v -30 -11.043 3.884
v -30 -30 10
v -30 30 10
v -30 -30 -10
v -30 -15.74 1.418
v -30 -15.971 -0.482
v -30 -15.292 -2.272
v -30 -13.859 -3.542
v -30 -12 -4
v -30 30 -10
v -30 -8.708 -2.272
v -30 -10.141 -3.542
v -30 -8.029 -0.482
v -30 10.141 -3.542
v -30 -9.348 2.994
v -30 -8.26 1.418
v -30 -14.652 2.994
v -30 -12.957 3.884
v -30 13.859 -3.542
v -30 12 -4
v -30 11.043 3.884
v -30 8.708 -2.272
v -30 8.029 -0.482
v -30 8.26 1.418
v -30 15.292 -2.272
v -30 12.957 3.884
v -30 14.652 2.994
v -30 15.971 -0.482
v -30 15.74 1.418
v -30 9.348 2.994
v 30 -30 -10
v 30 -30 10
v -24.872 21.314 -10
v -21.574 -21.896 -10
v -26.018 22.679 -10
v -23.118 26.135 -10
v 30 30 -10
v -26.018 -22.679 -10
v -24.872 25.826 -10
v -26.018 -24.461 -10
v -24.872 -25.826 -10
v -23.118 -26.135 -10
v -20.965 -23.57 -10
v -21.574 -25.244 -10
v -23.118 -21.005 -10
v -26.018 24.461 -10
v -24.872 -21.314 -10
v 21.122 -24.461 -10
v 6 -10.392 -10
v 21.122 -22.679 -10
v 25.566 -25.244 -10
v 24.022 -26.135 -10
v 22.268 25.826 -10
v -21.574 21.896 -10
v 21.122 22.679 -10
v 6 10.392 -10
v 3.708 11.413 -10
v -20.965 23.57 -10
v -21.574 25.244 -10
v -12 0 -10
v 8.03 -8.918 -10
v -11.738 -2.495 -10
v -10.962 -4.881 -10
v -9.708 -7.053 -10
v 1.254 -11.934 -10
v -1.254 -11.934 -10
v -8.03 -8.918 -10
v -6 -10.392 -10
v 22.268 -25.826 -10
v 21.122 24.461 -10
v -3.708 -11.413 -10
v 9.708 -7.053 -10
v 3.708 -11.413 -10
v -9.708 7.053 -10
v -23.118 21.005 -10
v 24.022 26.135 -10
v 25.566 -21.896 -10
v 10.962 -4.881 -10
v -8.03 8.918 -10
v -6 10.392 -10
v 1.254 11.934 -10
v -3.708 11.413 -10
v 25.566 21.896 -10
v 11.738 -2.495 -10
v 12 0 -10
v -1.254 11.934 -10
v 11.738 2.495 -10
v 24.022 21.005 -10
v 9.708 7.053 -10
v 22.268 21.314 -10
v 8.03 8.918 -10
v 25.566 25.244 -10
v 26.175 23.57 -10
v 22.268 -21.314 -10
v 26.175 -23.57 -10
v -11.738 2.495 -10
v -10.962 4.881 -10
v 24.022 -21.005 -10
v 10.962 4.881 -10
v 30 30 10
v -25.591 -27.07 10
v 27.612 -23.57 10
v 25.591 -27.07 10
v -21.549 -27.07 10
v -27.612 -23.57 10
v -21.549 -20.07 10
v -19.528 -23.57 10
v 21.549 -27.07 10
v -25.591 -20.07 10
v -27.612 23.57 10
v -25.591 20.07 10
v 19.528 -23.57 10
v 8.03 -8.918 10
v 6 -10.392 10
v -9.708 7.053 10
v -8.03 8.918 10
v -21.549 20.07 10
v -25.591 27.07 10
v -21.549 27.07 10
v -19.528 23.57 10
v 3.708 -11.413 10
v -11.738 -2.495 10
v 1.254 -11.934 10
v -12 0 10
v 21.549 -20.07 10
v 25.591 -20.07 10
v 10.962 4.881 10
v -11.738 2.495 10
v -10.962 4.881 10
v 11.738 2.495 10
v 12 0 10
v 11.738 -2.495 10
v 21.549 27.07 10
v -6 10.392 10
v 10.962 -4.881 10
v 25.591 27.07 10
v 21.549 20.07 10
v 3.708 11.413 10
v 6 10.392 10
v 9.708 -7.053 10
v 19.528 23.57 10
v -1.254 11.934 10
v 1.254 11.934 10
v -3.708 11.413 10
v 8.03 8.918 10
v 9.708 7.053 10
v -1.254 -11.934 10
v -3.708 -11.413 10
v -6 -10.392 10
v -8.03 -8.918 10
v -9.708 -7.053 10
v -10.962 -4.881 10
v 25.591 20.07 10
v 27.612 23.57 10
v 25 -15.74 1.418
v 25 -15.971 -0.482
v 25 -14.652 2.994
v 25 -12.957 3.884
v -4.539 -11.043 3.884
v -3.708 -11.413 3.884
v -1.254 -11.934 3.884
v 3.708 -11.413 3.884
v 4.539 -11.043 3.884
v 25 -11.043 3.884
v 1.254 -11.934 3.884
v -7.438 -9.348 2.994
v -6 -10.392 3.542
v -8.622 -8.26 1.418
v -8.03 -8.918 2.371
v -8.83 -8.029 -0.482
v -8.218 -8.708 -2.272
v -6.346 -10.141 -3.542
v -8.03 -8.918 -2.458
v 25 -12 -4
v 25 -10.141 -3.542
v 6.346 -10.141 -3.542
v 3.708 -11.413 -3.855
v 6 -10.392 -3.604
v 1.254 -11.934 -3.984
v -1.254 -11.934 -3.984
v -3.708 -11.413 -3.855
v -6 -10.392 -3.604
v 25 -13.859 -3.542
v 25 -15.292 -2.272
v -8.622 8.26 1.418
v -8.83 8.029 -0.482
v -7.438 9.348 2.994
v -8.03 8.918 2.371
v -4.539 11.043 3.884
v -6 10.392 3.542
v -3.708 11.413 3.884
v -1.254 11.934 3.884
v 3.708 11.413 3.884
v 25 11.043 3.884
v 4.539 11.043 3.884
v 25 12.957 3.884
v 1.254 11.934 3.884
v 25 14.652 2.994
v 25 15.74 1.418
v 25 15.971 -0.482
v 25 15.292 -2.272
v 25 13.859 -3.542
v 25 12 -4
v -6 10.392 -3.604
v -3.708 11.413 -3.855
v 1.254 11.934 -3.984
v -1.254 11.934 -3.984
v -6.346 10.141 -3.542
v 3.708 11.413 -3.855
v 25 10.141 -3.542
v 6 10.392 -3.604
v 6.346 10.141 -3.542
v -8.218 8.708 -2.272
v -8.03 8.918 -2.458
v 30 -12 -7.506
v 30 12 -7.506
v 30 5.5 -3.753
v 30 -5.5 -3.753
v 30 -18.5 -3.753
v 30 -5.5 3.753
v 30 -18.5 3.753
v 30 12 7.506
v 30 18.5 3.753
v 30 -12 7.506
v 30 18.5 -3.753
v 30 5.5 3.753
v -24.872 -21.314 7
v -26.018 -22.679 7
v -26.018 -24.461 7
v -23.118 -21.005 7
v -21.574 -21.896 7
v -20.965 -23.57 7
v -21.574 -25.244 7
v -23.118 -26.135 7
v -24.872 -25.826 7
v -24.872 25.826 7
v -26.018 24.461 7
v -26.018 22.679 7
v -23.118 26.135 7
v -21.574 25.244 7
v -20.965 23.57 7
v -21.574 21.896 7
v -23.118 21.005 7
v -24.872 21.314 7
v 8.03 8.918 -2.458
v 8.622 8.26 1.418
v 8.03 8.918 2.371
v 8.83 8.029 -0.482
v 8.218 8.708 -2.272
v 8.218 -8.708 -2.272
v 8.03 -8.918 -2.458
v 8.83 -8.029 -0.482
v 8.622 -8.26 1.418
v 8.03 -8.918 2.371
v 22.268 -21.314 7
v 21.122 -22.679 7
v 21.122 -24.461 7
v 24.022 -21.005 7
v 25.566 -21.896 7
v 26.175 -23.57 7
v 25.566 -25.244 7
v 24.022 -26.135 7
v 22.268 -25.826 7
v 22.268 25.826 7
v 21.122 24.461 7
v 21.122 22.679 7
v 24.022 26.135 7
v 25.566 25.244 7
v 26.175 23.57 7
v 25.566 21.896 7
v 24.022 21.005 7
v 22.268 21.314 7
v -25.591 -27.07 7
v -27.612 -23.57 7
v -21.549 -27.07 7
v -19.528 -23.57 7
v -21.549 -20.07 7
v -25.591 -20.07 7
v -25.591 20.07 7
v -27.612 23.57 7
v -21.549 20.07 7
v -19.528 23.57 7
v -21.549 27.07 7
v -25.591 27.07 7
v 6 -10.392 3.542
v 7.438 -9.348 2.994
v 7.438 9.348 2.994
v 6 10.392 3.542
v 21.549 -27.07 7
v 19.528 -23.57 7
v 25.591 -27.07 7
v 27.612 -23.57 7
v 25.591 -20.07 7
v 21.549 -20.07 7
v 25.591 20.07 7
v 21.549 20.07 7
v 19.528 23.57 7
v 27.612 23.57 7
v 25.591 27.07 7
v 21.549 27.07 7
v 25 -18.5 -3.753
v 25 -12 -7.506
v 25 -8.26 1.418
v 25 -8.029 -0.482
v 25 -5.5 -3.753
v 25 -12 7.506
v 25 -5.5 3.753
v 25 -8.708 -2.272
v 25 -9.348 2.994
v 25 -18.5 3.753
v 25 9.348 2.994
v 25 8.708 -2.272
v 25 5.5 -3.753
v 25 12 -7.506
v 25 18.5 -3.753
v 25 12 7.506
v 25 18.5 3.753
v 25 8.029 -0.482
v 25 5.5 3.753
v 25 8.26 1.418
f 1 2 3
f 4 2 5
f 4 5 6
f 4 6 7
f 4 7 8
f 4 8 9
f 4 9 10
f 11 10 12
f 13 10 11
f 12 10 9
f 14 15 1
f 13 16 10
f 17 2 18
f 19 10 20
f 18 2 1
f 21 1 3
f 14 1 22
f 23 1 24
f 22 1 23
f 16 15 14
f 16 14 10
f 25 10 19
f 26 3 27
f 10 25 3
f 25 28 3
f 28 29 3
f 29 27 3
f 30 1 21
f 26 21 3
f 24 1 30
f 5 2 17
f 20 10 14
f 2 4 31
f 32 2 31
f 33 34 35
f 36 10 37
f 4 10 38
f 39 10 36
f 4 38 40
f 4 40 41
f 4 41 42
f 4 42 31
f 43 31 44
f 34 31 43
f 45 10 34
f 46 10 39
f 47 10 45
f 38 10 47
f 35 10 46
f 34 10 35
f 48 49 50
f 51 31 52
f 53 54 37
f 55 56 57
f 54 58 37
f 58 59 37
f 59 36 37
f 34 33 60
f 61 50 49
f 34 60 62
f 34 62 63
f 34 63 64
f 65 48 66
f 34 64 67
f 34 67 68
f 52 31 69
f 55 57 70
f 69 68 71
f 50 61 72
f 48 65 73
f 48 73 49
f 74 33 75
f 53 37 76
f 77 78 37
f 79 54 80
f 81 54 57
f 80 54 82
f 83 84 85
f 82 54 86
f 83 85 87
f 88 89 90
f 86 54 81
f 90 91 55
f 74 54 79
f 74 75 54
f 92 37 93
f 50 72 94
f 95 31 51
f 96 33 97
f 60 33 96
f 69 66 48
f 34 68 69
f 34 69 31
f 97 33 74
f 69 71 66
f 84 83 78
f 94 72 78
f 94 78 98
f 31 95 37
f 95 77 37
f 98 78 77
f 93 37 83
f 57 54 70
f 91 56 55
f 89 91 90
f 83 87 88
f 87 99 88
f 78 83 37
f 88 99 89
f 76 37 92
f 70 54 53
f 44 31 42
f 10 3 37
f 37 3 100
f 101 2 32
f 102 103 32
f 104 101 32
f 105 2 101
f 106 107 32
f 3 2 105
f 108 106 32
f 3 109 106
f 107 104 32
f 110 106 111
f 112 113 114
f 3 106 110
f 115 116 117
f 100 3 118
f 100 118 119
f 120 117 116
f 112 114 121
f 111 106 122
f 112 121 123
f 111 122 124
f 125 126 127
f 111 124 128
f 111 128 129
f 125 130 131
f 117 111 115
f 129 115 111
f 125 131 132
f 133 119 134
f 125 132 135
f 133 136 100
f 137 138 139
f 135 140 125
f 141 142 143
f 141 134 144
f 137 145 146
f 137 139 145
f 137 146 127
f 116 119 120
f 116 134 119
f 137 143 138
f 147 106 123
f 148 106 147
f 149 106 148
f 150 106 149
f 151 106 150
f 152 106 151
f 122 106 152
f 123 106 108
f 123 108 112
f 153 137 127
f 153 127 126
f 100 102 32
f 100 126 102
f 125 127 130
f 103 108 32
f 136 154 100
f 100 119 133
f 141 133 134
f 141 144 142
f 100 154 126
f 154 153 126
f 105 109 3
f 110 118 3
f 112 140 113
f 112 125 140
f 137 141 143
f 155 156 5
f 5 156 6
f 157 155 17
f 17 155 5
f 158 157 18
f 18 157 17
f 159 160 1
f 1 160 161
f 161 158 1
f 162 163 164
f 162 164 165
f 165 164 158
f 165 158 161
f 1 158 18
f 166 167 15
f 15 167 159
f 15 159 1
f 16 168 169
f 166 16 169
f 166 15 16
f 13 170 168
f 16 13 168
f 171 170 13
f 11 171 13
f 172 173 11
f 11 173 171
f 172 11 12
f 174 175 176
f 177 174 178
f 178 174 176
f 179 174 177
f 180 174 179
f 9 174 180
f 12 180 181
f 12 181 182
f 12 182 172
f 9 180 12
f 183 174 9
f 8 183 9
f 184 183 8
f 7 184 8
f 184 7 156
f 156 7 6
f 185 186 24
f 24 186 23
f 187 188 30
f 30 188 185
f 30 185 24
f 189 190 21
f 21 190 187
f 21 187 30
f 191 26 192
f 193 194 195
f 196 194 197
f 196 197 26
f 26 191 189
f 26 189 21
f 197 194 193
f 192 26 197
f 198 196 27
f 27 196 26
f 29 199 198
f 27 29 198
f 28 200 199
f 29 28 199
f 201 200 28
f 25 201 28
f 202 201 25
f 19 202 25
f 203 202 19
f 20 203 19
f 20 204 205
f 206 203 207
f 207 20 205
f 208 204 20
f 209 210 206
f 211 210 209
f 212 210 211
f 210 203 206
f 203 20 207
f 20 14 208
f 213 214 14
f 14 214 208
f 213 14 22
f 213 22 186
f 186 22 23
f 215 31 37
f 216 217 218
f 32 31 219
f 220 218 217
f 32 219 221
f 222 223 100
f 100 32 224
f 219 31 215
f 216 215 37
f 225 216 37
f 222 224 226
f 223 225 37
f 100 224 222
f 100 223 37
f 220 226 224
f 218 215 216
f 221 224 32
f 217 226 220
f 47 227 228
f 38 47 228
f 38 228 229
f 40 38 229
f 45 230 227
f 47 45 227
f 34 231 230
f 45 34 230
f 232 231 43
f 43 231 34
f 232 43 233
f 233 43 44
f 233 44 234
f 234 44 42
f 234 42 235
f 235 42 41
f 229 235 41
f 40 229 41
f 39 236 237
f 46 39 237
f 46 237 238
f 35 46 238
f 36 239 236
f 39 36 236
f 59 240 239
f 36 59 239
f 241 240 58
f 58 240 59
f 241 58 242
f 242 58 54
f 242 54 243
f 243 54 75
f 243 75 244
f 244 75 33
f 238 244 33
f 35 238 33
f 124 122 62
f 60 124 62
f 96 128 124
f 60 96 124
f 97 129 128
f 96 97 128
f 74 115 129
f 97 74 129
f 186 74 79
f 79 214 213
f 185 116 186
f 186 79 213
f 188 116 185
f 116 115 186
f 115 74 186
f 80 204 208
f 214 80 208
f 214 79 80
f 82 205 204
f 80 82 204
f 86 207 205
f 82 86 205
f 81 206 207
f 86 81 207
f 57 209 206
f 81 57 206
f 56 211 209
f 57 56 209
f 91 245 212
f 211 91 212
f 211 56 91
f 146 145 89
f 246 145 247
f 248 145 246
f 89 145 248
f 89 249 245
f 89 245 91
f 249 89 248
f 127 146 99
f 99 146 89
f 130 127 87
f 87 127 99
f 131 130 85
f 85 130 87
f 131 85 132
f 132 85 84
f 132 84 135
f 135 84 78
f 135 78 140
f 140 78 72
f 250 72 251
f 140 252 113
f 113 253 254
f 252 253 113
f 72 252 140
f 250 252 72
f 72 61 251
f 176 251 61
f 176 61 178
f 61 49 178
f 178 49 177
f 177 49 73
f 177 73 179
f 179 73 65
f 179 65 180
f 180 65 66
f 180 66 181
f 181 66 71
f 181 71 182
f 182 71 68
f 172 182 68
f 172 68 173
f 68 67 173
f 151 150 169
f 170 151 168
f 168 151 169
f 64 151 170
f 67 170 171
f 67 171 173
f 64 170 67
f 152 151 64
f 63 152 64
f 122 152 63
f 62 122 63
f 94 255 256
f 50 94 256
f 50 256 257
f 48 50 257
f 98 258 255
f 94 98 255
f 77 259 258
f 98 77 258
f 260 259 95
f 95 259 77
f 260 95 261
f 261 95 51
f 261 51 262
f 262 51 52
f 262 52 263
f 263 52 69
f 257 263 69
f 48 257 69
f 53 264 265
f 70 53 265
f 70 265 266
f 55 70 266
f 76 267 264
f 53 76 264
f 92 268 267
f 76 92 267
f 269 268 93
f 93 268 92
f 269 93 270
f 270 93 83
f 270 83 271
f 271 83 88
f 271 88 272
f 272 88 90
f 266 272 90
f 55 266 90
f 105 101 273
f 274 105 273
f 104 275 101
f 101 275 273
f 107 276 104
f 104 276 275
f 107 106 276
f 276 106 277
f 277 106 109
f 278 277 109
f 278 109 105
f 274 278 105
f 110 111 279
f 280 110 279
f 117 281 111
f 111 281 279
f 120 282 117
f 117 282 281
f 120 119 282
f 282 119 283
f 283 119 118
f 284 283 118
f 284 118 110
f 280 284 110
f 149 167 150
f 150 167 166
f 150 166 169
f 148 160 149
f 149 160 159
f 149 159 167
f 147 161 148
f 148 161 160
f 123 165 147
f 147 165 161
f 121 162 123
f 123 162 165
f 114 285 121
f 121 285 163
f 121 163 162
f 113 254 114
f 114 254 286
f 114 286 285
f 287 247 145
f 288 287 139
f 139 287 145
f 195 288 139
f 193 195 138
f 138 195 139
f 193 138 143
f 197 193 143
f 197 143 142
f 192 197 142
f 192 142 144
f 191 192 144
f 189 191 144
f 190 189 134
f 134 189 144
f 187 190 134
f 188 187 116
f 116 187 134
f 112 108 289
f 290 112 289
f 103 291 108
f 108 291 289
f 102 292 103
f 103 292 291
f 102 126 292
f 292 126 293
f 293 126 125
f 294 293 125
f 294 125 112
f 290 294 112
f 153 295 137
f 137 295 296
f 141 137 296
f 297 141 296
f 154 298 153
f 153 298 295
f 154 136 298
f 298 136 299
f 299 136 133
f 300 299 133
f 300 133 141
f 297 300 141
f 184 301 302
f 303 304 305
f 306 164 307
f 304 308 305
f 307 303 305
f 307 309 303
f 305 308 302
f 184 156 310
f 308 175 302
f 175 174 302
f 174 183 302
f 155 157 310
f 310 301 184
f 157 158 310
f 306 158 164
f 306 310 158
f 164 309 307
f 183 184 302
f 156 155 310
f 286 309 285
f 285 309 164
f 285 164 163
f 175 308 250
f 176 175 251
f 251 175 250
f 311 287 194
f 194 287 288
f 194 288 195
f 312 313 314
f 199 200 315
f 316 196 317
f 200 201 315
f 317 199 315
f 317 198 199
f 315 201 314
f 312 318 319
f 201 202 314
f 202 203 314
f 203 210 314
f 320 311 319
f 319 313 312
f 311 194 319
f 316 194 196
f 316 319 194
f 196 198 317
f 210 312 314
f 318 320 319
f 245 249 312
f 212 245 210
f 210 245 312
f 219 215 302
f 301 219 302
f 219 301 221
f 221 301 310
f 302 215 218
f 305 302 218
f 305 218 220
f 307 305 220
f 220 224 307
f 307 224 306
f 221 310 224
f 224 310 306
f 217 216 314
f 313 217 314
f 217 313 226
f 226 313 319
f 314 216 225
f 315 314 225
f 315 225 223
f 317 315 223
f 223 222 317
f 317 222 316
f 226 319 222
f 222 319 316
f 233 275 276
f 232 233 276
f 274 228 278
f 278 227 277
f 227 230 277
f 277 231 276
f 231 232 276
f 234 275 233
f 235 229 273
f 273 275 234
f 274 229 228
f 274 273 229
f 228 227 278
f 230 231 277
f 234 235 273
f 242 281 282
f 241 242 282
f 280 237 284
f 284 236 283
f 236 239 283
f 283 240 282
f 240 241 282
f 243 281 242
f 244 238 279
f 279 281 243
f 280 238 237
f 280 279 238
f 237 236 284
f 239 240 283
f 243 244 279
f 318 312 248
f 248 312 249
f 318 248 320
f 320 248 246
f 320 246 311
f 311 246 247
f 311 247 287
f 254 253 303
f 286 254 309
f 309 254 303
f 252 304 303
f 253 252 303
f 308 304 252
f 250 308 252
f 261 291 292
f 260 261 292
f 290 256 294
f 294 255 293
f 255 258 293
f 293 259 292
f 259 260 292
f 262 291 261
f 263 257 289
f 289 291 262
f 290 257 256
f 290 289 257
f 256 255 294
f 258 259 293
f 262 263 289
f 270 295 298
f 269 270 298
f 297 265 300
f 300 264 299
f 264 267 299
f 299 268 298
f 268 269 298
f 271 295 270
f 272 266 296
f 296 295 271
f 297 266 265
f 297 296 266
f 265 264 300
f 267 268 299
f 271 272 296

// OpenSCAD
 nema23(0,1); //nema23 single shaft cylinder



module nema23(has_back, is_cylinder){
  mplate = 60; //mounting plate width
  mplateH = 20; //mounting plate height



  shaftR = 24/2; //shaft radius
  shaftH = 80.6;  //shaft lenght

  bodyL = 46.5; //46.5, 56.1, 77.7, 103.1, ...
  bodyInnerCube = 37.6;

  holeR = 5.21/2;
  holeL = 47.14/2; //distance between hole centres

  difference(){

//mounting plate
cube(size = [mplate,mplate,mplateH], center = true);

//shaft front
translate(v=[0,0,mplateH*2-shaftH/2])cylinder(r=shaftR, h=shaftH, center=true);

//M8
rotate(a=[0,90,0]) translate(v=[0,12,25])cylinder(h=6, r=13/2/sin(60), $fn=6, center=false); 
rotate(a=[0,90,0]) translate(v=[0,12,0])cylinder(r=4, h=shaftH, center=true);

rotate(a=[0,90,0]) translate(v=[0,-12,25])cylinder(h=6, r=13/2/sin(60), $fn=6, center=false); 
rotate(a=[0,90,0]) translate(v=[0,-12,0])cylinder(r=4, h=shaftH, center=true);   
 
translate(v=[holeL,holeL,0]) cylinder(r = holeR, h = 2*mplateH, center=true);
translate(v=[holeL,holeL,10])cylinder(h=6, r=7/2/sin(60), $fn=6, center=true); 

translate(v=[-holeL,holeL,0]) cylinder(r = holeR, h = 2*mplateH, center=true);
translate(v=[-holeL,holeL,10])cylinder(h=6, r=7/2/sin(60), $fn=6, center=true); 

translate(v=[-holeL,-holeL,0]) cylinder(r = holeR, h = 2*mplateH, center=true);
translate(v=[-holeL,-holeL,10])cylinder(h=6, r=7/2/sin(60), $fn=6, center=true); 

translate(v=[holeL,-holeL,0]) cylinder(r = holeR, h = 2*mplateH, center=true);
translate(v=[holeL,-holeL,10])cylinder(h=6, r=7/2/sin(60), $fn=6, center=true); 
  }
  
}
